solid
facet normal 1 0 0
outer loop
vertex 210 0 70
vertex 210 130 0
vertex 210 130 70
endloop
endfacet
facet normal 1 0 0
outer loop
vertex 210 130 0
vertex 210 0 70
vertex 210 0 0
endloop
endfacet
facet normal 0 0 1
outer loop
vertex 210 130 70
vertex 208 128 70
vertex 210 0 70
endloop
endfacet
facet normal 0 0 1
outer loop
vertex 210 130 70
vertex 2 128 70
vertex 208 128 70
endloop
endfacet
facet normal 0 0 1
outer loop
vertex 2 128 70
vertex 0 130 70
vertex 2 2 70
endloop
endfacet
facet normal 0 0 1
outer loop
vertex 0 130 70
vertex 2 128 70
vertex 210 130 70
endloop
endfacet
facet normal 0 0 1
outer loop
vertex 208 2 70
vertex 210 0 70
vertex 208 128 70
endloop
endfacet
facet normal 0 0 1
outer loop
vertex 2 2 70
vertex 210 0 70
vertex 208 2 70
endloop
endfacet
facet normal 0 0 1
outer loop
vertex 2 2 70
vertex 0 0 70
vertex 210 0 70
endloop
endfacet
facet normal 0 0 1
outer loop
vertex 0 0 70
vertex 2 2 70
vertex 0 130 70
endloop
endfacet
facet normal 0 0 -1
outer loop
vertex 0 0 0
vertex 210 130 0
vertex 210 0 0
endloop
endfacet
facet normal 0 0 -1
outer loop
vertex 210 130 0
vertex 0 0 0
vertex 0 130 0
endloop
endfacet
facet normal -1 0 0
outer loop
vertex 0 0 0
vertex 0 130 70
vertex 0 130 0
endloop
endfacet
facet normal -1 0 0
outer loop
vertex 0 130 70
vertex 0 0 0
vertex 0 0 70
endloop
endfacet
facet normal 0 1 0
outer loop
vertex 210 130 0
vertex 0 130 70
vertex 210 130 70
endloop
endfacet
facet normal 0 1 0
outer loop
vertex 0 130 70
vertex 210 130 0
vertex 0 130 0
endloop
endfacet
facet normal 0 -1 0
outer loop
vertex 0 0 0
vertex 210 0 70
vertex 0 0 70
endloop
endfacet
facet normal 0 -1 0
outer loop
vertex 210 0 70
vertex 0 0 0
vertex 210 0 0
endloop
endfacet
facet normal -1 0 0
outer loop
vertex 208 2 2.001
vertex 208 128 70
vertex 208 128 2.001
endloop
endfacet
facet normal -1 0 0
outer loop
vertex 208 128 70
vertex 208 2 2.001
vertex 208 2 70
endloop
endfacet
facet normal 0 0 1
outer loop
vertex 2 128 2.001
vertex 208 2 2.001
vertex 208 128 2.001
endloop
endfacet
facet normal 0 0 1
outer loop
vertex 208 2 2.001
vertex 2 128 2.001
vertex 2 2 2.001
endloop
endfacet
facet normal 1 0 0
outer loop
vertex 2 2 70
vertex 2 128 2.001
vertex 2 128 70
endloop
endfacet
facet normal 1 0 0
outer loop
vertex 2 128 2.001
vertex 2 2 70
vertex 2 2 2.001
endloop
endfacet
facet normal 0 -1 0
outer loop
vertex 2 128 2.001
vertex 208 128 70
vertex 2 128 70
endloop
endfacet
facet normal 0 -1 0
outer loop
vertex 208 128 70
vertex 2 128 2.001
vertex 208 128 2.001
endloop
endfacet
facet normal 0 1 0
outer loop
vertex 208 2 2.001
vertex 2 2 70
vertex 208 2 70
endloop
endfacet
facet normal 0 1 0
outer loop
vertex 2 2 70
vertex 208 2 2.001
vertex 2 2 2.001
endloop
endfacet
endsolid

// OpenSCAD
//
// ktRACK14
//
 
gap1 = 0.001;
gap2 = 0.002;
th = 2;

W = 200+10;
D = 120+10;
H = 60+10;


difference()
{
    union()
    {
        translate([0, 0, 0]) cube([W, D, H]);
    }
    translate([th, th, th+gap1]) cube([W-th*2, D-th*2, H-th]);

}
